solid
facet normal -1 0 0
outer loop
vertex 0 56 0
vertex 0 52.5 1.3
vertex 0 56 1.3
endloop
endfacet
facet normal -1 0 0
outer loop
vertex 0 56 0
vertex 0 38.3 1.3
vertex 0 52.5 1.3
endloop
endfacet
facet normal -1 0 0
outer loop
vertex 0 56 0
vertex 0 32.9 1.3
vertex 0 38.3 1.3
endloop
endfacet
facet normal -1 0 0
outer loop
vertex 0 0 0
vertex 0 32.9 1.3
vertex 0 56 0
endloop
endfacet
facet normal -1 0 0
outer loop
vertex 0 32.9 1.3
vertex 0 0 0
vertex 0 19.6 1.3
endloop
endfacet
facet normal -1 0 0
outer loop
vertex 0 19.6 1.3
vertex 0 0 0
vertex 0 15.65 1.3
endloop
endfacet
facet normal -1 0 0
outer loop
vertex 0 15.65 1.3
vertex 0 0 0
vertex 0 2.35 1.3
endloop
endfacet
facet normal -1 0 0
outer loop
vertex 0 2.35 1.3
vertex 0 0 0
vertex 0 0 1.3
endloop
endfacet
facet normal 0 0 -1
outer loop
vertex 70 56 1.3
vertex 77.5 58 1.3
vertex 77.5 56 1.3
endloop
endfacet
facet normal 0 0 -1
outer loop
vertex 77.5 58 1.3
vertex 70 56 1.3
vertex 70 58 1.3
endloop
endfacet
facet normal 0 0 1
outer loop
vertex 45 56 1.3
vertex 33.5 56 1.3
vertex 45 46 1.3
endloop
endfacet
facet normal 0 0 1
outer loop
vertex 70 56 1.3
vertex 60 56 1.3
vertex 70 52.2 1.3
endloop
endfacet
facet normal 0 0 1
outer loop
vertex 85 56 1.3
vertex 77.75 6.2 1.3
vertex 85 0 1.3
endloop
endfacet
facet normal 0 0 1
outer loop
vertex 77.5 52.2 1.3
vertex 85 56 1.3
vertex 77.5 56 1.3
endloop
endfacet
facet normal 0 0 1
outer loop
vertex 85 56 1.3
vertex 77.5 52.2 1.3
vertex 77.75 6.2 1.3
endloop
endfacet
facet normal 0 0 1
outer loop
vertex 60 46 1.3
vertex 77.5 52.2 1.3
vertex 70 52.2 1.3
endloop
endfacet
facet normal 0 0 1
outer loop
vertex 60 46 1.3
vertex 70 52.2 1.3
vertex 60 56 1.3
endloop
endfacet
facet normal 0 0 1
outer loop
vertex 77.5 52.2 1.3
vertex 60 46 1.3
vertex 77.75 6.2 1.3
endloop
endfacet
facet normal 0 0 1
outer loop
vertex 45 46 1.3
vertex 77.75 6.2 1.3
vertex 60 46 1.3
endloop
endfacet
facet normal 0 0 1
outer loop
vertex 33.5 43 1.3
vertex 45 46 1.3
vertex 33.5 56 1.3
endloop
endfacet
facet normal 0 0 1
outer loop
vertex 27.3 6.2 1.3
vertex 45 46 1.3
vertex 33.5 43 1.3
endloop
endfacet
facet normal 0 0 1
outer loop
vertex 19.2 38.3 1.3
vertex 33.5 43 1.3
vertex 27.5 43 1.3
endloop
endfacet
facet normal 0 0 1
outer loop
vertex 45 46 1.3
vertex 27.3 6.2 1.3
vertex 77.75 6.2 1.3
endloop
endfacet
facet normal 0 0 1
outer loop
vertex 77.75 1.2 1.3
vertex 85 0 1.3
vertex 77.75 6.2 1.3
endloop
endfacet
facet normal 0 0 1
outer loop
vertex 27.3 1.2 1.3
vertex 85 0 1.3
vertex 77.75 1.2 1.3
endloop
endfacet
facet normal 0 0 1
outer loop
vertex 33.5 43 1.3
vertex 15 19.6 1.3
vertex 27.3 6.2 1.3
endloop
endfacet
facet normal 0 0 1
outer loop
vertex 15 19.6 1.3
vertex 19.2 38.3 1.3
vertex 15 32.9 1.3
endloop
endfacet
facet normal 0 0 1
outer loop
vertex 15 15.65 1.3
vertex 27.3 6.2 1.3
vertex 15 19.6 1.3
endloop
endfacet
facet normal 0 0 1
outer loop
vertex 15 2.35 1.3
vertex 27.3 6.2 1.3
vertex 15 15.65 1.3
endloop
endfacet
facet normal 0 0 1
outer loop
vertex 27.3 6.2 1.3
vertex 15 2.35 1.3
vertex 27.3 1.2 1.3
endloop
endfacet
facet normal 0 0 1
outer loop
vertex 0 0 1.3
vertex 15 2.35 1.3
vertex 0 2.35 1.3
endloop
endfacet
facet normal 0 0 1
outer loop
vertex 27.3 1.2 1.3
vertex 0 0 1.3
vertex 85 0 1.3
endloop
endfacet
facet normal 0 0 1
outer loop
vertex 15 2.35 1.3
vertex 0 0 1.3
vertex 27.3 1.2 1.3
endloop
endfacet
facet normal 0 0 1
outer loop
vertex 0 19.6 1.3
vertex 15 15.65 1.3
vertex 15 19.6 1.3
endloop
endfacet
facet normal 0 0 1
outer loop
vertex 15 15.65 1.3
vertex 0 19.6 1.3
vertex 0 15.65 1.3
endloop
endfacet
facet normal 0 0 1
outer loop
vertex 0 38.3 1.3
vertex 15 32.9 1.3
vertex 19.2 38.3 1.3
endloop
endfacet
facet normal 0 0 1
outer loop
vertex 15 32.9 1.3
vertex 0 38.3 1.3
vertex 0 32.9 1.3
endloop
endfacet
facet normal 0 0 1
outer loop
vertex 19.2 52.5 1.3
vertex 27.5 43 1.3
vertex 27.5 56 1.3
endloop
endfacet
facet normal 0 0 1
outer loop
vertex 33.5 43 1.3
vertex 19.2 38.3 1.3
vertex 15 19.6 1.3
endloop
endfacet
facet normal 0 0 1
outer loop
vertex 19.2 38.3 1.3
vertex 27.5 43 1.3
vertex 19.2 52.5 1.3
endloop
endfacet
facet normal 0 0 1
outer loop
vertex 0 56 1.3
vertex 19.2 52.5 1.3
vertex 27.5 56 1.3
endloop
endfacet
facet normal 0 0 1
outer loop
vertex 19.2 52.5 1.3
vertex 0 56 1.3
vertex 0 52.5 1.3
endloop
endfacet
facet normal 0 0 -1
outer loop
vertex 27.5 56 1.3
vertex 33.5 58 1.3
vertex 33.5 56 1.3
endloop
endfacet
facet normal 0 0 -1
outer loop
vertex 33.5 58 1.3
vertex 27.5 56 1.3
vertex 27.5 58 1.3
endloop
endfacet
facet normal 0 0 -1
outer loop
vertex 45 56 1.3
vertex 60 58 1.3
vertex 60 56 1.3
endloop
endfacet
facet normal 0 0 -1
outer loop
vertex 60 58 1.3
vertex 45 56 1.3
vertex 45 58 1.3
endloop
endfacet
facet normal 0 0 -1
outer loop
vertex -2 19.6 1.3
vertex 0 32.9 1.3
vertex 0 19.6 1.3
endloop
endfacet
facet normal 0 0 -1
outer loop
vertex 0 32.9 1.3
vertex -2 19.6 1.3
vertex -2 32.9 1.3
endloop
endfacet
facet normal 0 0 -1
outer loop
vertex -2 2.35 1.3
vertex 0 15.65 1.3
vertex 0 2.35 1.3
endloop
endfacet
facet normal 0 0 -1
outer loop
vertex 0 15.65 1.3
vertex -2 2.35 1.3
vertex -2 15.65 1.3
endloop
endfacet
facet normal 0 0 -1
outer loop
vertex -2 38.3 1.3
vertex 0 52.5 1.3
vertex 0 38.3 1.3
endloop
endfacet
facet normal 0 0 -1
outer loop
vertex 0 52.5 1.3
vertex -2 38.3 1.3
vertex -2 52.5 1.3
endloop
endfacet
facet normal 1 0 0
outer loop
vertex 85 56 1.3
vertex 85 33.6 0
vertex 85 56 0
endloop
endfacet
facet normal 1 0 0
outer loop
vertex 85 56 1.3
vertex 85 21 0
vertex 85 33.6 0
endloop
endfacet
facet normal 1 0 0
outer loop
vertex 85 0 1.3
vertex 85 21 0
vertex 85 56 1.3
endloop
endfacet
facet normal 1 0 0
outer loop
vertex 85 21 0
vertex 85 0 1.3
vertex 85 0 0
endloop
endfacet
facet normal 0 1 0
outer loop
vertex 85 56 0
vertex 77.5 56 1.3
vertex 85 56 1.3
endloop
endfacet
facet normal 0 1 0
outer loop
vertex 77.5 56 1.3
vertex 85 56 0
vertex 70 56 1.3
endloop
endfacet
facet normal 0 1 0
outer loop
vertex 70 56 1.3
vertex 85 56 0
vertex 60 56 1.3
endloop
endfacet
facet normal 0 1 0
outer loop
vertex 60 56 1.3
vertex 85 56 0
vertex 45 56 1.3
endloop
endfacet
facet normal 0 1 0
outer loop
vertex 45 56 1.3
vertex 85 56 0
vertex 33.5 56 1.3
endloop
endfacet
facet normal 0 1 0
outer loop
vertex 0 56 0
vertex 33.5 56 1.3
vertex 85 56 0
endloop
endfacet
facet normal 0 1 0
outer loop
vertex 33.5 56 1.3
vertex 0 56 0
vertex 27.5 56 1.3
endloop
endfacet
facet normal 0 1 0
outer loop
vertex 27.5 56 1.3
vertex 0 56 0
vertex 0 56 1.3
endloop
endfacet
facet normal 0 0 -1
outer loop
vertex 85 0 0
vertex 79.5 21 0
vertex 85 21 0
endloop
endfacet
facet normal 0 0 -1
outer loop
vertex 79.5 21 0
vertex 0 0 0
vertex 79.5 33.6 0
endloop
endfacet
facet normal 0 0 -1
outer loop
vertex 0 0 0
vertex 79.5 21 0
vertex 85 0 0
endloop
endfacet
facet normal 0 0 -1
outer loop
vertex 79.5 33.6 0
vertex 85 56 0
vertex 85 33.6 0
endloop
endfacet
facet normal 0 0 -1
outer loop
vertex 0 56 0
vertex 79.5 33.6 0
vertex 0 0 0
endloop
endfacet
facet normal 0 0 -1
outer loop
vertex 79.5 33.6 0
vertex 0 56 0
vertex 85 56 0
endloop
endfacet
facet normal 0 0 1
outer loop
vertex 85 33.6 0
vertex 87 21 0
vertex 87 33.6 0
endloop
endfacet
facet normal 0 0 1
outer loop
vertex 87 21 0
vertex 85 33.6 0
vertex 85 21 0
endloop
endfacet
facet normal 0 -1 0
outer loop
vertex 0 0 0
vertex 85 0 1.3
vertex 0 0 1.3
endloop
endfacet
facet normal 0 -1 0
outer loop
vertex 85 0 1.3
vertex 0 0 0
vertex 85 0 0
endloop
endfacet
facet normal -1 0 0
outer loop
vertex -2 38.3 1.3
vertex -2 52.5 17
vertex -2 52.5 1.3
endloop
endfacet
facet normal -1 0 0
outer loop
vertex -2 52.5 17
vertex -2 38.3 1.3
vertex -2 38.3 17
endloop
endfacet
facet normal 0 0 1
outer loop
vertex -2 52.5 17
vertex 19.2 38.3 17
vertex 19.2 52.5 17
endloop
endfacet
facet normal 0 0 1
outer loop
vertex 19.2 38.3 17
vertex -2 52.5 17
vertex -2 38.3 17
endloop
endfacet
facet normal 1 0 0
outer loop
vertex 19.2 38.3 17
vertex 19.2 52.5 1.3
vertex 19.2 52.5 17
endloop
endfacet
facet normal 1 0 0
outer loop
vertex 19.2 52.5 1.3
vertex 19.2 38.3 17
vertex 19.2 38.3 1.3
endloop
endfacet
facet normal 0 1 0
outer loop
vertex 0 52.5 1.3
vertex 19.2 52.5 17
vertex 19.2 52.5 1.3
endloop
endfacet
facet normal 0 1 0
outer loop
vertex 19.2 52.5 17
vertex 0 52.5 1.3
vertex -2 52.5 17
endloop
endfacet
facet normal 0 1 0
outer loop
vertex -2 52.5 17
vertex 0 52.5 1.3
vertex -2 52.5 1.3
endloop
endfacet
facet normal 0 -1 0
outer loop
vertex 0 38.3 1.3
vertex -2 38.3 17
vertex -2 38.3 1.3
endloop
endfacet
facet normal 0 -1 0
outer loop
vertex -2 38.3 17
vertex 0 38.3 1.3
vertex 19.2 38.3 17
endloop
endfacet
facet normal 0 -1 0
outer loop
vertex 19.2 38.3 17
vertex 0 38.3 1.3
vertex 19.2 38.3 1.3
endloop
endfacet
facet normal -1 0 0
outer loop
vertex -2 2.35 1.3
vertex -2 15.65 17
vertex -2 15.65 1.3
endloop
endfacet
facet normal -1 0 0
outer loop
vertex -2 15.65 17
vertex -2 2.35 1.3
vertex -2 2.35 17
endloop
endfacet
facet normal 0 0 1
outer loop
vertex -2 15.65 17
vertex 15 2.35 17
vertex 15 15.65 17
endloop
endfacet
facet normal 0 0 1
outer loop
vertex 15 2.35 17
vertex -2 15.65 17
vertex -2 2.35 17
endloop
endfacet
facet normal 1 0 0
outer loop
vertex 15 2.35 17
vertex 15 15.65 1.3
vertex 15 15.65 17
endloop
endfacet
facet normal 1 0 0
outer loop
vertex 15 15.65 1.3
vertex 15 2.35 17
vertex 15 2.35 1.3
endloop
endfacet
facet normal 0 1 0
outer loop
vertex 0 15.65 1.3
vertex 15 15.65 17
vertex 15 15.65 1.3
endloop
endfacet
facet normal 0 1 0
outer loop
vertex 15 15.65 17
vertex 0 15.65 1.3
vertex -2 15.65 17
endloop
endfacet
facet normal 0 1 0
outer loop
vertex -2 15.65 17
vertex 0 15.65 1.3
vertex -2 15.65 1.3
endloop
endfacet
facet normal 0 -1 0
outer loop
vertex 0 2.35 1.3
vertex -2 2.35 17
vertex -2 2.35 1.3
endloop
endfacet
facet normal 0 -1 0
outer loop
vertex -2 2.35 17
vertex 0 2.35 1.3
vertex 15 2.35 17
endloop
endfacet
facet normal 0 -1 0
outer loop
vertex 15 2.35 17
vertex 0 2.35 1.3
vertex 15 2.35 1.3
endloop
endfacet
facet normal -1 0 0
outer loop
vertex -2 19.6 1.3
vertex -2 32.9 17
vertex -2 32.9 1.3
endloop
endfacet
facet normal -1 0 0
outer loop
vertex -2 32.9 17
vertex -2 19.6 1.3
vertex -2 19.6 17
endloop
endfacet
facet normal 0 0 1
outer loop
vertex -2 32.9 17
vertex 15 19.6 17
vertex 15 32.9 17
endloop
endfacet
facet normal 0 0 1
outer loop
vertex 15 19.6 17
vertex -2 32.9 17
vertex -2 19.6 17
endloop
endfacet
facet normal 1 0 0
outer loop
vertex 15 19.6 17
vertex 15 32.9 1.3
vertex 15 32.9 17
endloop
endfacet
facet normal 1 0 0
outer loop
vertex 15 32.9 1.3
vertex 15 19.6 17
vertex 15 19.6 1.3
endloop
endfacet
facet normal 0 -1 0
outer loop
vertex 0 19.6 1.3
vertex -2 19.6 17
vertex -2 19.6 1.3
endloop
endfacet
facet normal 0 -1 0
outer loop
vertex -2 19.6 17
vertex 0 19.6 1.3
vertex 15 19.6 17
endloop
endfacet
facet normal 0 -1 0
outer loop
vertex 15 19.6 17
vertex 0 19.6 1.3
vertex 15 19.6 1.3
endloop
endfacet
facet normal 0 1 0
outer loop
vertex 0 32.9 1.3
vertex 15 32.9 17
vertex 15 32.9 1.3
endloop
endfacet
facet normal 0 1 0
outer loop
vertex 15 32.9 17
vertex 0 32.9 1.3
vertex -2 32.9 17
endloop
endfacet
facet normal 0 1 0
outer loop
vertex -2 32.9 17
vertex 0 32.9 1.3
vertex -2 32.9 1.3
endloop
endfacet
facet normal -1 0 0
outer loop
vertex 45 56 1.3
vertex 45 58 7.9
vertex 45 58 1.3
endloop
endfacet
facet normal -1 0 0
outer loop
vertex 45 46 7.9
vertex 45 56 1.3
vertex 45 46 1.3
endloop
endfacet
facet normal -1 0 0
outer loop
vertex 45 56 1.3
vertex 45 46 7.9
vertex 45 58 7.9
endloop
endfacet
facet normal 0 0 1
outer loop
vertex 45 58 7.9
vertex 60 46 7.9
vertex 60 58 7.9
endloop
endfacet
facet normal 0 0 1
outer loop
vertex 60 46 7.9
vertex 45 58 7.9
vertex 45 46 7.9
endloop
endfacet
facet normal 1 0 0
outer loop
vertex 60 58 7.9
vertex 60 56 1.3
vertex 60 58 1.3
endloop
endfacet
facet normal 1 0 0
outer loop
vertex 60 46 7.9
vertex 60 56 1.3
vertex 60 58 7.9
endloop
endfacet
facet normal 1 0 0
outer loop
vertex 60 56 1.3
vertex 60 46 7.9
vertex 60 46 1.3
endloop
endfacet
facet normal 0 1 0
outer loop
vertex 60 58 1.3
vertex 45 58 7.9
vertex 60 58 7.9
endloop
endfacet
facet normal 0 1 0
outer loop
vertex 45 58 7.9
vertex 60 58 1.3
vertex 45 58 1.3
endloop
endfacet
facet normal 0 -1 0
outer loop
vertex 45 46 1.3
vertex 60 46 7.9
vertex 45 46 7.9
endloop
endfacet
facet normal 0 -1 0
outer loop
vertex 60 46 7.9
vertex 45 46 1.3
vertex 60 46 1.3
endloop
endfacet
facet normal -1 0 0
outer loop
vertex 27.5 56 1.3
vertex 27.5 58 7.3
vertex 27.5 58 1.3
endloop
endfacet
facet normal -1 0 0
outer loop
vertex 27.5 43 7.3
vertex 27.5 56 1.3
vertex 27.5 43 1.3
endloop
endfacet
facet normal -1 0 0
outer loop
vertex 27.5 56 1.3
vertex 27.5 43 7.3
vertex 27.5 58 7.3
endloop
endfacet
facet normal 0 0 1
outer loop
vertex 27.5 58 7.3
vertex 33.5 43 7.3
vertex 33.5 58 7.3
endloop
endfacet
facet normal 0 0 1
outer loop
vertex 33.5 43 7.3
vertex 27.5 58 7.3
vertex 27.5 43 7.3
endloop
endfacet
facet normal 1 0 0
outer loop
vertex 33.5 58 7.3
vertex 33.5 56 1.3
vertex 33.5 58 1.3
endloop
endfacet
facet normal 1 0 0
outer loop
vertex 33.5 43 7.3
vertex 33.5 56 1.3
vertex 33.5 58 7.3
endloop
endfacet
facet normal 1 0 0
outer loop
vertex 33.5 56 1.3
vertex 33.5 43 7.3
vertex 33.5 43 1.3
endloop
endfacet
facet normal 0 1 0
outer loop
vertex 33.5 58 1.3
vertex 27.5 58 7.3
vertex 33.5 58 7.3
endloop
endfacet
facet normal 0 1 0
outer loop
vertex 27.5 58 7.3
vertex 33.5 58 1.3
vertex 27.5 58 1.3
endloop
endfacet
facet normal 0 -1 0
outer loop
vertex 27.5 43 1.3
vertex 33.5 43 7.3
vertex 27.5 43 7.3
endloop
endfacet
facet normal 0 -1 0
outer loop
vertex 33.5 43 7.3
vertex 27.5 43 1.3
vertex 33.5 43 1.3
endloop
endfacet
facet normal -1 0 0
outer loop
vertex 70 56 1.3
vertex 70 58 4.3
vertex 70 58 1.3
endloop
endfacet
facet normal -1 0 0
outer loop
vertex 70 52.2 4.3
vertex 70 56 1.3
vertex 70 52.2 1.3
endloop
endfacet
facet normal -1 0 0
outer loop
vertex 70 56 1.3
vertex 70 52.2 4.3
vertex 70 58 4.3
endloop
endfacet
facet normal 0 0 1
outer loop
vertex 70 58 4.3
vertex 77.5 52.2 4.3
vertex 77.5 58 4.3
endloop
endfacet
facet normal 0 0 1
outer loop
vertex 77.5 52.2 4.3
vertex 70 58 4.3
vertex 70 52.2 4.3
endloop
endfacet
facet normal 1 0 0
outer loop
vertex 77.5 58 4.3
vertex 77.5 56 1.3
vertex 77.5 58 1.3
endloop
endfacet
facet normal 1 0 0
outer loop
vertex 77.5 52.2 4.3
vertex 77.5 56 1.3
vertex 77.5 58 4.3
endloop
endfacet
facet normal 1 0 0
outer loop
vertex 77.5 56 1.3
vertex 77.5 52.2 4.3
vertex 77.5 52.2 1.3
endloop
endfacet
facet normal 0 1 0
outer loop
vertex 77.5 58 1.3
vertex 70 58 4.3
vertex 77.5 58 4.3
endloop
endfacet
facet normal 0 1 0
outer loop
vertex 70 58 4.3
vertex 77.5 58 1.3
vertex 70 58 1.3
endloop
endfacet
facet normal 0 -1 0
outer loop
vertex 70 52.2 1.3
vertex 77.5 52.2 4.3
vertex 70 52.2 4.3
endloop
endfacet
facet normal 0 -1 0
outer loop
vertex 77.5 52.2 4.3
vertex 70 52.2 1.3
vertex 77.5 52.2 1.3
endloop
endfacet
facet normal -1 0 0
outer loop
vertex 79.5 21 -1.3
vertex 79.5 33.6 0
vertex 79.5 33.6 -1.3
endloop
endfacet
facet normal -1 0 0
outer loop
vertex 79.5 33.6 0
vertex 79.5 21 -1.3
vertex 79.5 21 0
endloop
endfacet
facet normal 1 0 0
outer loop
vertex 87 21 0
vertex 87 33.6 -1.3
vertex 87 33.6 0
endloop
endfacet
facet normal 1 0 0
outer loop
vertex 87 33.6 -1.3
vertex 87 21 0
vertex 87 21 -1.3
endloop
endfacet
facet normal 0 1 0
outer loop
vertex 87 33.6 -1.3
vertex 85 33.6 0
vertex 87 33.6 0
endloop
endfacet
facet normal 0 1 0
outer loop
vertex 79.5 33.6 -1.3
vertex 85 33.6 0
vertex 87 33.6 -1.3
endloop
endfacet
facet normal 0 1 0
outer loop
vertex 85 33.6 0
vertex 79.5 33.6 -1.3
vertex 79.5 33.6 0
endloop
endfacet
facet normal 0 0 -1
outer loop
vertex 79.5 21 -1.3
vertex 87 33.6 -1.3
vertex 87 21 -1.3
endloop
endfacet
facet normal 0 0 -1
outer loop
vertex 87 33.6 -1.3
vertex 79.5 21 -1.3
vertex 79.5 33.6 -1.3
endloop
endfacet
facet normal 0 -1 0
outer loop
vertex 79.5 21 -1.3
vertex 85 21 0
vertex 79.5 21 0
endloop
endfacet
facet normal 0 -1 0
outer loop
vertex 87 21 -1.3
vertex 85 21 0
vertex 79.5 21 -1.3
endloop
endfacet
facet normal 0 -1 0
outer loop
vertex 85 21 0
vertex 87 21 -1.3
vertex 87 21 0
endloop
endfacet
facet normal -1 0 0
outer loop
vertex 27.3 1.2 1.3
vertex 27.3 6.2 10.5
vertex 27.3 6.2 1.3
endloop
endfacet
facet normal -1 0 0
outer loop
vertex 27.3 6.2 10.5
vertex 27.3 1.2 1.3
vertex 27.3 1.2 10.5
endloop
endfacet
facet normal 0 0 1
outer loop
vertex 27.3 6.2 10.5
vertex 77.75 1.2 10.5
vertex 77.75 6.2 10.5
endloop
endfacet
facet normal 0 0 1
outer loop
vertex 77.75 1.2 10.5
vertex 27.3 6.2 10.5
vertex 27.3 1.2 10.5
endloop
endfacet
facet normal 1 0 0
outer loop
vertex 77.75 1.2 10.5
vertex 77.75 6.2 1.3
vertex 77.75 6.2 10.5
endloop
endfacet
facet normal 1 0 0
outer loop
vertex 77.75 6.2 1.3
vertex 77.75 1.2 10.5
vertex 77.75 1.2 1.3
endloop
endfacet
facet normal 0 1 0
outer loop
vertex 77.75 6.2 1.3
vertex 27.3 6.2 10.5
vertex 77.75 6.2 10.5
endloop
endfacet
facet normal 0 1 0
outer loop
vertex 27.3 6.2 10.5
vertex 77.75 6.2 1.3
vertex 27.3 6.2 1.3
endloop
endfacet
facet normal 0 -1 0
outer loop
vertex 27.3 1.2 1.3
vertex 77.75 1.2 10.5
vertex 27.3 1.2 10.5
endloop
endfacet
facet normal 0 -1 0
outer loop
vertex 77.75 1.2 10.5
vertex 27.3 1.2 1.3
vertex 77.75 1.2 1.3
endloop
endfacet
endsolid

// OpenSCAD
// A toggle switch ordered from https://www.sparkfun.com/products/11310

$fn = 16;

length = 85;
width = 56;
height = 1.3;

module board() {
    cube([length, width, height]);
}

module ethernet() {
    translate([-2, 38.3, height]) cube([21.2, 14.2, 15.7]);
}

module usb(y = 0) {
    translate([-2, y, height]) cube([17, 13.3, 15.7]);
}

module usb_power() {
    translate([70, width + 2 - 5.8, height]) cube([7.5, 5.8, 3]);
}

module micro_sd() {
    translate([length + 2 - 7.5, 21, -1.3]) cube([7.5, 12.6, 1.3]);
}

module dvi() {
    translate([45, width + 2 - 12, height]) cube([15, 12, 6.6]);
}

module audio() {
    translate([27.5, width + 2 - 15, height]) cube([6, 15, 6]);
}

module header() {
    translate([27.3, 1.2, height]) cube([50.45, 5, 9.2]);
}

board();
color("green") ethernet();
color("red") usb(y=2.35);
color("blue") usb(y=19.6);
color("orange") dvi();
audio();
color("magenta") usb_power();
color("lime") micro_sd();
color("teal") usb_power();
color("black") header();
